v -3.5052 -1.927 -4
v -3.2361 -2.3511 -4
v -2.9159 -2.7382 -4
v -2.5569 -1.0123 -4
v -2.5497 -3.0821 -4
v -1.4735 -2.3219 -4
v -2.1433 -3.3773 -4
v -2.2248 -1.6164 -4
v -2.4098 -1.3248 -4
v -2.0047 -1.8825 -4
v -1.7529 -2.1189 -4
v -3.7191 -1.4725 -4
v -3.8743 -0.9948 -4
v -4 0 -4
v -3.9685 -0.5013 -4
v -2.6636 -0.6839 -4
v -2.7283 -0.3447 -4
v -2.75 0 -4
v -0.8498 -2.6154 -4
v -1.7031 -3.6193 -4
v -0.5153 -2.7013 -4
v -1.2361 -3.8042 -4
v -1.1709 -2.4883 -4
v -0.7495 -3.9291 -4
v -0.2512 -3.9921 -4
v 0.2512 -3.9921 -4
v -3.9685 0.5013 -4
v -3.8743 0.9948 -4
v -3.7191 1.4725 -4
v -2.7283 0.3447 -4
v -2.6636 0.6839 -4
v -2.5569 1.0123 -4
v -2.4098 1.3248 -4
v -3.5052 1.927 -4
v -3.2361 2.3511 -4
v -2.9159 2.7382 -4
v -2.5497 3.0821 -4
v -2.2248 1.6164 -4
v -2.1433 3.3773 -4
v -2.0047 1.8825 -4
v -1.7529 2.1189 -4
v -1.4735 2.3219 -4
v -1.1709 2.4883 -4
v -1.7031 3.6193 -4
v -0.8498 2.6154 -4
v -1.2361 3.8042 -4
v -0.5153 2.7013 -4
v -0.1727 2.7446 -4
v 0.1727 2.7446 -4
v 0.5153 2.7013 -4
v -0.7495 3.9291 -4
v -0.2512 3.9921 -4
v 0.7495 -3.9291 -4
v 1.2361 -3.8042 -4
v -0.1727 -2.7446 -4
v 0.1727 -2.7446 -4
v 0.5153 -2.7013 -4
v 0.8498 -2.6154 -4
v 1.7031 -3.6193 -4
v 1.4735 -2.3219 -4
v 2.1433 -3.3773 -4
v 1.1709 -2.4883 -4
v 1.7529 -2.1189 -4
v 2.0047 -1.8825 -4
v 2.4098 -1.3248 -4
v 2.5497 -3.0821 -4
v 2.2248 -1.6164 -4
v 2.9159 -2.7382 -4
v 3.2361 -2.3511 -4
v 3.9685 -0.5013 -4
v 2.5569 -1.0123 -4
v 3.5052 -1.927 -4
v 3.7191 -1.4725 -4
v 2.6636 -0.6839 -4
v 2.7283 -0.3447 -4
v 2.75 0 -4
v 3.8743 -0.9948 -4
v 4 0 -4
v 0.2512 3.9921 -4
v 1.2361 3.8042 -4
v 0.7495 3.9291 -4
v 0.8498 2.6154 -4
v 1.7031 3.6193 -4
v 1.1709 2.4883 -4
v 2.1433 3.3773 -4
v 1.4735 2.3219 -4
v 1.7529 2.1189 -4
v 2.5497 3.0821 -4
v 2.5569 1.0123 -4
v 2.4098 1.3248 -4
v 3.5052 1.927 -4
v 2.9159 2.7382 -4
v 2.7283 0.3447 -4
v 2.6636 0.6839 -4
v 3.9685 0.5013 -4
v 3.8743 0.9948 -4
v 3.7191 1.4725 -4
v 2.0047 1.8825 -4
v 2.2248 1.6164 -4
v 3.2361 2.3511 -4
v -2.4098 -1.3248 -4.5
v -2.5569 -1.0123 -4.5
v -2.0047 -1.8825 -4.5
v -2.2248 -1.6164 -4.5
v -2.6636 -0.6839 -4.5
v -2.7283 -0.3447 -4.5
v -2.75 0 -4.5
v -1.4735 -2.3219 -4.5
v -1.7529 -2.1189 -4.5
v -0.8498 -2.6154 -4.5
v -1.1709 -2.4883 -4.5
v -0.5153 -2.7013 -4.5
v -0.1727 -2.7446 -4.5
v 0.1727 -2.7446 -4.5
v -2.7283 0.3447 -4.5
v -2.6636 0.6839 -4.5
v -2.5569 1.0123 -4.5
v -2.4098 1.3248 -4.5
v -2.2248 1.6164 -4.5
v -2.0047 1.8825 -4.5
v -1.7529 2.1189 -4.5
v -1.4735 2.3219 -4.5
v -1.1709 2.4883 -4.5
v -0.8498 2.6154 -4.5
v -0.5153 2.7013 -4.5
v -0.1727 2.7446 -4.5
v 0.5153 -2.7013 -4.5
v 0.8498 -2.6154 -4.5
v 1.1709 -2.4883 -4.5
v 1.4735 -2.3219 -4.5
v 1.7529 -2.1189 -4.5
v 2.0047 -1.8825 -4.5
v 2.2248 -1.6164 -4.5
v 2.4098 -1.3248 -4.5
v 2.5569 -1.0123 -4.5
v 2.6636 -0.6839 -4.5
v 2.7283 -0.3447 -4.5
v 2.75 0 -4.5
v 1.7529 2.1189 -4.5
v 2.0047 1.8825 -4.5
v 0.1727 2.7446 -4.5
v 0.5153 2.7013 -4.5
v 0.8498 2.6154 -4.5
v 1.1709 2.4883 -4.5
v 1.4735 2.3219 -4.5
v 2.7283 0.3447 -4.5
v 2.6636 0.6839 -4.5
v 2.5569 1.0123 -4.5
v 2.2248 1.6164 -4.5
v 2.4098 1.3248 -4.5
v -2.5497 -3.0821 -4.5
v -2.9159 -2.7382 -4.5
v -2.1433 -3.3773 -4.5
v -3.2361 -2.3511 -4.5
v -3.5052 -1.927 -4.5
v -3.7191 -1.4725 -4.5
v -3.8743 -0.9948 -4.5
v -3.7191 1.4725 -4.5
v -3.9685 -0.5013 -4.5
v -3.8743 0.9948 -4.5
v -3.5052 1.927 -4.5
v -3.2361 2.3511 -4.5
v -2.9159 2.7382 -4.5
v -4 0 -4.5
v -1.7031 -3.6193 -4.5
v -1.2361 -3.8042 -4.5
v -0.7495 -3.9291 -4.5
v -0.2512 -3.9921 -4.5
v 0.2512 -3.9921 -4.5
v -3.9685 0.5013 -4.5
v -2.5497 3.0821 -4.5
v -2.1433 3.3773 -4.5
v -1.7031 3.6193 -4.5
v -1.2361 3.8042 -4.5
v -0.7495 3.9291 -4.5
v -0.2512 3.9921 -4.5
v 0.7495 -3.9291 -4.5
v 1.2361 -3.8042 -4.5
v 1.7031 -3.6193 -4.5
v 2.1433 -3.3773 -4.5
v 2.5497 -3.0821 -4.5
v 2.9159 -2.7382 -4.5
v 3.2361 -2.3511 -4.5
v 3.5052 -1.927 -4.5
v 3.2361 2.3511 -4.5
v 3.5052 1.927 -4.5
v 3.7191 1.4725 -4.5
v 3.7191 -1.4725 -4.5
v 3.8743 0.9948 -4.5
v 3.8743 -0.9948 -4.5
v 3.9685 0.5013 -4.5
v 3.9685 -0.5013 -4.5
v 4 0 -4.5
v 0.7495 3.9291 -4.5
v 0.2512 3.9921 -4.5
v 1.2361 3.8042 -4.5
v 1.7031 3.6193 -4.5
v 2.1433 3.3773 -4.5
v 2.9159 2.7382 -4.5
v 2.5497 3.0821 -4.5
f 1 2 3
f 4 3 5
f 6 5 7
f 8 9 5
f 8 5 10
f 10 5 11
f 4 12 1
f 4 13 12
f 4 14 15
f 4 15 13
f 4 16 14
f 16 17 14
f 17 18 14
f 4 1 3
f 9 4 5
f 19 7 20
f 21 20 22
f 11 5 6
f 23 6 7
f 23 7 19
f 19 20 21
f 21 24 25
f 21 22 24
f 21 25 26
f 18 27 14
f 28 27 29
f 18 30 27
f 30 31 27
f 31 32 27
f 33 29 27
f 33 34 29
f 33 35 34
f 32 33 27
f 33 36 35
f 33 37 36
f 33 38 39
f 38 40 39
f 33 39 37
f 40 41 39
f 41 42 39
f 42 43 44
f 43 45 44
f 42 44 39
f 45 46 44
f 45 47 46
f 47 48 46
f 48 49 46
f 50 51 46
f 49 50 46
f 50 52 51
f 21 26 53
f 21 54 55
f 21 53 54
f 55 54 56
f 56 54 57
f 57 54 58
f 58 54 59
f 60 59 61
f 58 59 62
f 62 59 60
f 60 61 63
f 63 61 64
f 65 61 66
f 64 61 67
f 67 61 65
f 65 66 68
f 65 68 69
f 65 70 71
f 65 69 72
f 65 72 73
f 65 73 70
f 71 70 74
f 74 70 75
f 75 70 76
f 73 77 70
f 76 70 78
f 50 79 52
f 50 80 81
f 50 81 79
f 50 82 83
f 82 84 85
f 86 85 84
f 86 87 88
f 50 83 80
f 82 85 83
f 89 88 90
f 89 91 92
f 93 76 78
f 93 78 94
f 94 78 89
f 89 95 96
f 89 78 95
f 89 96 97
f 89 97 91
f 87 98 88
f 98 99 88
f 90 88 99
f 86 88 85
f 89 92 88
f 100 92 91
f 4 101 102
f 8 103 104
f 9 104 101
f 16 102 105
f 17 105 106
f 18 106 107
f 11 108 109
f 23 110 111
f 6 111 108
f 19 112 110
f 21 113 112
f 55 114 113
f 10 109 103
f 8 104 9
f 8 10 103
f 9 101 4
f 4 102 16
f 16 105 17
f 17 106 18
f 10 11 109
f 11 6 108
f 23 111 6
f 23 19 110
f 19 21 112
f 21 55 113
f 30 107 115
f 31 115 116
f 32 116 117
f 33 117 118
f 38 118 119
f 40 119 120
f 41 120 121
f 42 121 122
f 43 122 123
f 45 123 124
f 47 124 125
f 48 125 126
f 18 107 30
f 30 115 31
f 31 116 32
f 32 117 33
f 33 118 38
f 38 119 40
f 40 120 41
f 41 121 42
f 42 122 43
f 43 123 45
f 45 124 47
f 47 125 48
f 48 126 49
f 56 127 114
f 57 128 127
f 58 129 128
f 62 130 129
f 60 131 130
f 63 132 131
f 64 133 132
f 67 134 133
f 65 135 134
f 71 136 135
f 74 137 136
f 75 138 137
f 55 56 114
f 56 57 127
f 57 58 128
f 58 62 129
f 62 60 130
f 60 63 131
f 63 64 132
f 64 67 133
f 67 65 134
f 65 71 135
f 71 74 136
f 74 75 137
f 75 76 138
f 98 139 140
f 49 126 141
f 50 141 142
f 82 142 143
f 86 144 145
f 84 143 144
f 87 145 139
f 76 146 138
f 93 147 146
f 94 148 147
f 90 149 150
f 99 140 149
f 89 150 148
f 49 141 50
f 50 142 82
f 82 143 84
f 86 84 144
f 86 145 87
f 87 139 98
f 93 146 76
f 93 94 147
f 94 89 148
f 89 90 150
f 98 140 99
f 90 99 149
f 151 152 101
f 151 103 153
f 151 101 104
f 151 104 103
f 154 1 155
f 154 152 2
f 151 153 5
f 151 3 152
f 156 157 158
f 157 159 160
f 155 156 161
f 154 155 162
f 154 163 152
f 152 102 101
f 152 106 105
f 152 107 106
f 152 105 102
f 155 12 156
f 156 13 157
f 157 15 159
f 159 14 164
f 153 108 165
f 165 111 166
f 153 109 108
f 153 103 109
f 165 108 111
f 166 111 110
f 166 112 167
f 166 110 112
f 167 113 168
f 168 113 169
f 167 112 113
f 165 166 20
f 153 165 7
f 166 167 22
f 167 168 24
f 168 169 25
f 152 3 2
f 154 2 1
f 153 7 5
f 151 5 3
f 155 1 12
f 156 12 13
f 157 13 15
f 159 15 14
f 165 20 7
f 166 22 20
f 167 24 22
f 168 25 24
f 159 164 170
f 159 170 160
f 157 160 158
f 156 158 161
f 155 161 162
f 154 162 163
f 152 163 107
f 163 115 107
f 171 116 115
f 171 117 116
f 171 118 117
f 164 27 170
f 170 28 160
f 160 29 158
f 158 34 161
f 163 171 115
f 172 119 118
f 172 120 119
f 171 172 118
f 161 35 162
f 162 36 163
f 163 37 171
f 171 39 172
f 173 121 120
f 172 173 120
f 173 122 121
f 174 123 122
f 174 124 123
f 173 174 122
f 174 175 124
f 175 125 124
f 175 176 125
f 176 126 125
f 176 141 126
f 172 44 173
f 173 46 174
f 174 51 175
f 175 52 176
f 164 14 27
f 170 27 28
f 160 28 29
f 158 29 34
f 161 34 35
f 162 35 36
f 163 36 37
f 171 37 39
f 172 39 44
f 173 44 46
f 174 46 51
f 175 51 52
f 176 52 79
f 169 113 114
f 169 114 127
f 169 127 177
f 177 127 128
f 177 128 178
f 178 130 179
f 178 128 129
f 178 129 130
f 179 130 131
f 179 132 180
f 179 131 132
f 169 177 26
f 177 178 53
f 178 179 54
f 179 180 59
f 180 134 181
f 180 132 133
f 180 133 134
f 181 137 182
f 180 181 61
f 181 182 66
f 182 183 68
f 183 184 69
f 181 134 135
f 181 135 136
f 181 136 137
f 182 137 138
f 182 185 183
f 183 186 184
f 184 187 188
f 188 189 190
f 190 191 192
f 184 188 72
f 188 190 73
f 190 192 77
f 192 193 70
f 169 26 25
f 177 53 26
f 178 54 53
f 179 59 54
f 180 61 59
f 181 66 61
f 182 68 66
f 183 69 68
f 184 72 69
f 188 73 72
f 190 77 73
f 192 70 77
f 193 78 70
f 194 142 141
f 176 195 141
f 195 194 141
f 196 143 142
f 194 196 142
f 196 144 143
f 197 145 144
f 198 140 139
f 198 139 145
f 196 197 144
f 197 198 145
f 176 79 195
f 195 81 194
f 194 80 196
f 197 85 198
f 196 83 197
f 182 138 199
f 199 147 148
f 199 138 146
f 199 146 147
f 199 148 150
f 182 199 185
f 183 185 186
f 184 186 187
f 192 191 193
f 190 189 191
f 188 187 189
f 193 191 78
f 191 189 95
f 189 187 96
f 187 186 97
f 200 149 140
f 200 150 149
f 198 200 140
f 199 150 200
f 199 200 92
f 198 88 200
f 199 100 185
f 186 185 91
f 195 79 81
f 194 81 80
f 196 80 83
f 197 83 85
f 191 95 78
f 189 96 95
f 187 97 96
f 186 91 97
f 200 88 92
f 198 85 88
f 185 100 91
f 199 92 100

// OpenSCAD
$fn = 50;

difference() {
	union() {
		translate(v = [0, 0, -4.5]) {
			cylinder(h = 4.5, r = 4.0);
		}
	}
	union() {
		translate(v = [0, 0, 0]) {
			rotate(a = [0, 0, 0]) {
				difference() {
					union() {
						translate(v = [0, 0, -4]) {
							linear_extrude(height = 4) {
								polygon(points = [[4.8468, 0.0], [2.4234000000000004, 4.197451927062417], [-2.423399999999999, 4.197451927062417], [-4.8468, 5.935618106107392e-16], [-2.423400000000002, -4.197451927062416], [2.423399999999997, -4.197451927062419]]);
							}
						}
					}
					union();
				}
			}
		}
		#translate(v = [0, 0, -100.0]) {
			cylinder(h = 200, r = 2.75);
		}
	}
}
